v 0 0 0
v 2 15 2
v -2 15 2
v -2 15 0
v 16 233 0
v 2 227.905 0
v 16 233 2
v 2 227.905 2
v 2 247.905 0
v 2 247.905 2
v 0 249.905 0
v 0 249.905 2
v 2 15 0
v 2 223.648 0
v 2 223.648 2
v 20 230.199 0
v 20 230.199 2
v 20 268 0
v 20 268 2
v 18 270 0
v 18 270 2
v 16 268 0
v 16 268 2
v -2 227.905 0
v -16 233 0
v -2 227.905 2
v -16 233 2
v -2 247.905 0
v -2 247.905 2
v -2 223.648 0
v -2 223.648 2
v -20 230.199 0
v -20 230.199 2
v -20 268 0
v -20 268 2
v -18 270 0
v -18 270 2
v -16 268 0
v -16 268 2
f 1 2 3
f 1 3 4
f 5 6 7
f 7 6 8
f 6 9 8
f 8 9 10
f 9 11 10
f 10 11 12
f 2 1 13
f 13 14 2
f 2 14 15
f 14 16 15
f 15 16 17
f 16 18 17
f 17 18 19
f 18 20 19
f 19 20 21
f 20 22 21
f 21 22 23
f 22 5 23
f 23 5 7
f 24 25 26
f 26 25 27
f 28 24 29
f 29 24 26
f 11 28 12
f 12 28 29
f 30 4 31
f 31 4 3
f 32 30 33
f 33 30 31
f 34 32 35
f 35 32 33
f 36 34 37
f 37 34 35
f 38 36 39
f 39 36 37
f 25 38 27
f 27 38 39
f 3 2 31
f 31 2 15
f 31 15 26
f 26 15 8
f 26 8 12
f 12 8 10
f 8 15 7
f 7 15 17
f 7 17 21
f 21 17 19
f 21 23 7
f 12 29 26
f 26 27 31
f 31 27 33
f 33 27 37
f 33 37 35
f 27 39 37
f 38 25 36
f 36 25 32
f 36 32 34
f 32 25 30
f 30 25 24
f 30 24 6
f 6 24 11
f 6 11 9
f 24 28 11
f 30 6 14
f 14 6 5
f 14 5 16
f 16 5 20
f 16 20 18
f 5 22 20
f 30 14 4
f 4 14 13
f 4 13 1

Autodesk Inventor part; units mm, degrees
sketch "Sketch1" plane through (0, 0, 0) normal (0, 0, 1) x (1, 0, 0)
  line L0 (0, 0) -> (-2, 15)
  line L1 (-2, 15) -> (-2, 223.6477)
  line L2 (-24, 0) -> (4, 0) projected
  line L3 (-2, 223.6477) -> (-20, 230.1992)
  line L4 (-20, 230.1992) -> (-20, 268)
  line L5 (-20, 268) -> (-18, 270)
  line L6 (-18, 270) -> (-16, 268)
  line L7 (-16, 268) -> (-16, 233)
  line L8 (-16, 233) -> (-2, 227.9044)
  line L9 (-2, 227.9044) -> (-2, 247.9044)
  line L10 (-2, 247.9044) -> (0, 249.9044)
  line L11 (0, 249.9044) -> (0, 0)
  dimension "d6" = 15
  dimension "d7" = 4
  dimension "d12" = 4
  dimension "d19" = 2
  dimension "d20" = 270
  dimension "d22" = 135
  dimension "d23" = 2
  dimension "d24" = 70
  dimension "d26" = 2
  dimension "d27" = 20
  dimension "d28" = 135
  dimension "d31" = 35
  dimension "d32" = 20
extrude "Extrusion1" add sketch "Sketch1" along normal blind 2
mirror "Mirror1" about plane through (0, 0, 0) normal (1, 0, 0) of "Extrusion1"
ref_plane "Work Plane1" through (2, 15, 2) normal (0, -0.1322, 0.9912) x (-1, 0, 0)
sketch "Sketch3" plane through (2, 15, 2) normal (0, -0.1322, 0.9912) x (-1, 0, 0)
  line L0 (4, -206.8174) -> (4, 0) projected
  line L1 (4, 0) -> (0, 0)
  line L2 (0, 0) -> (0, 15.1327)
  line L3 (0, 15.1327) -> (4, 15.1327)
  line L4 (4, 15.1327) -> (4, 0)
  point P0 (2, 15.1327)
extrude "Extrusion2" cut sketch "Sketch3" along normal through all
equation "\"d7\" = thickness"
equation "\"d12\" = thickness"
equation "\"d20\" = length"
equation "\"d23\" = 0.5 * thickness"
equation "\"d26\" = 0.5 * thickness"
equation "\"thickness\" = 4"
equation "\"length\" = 270"
properties part number "card holder"
